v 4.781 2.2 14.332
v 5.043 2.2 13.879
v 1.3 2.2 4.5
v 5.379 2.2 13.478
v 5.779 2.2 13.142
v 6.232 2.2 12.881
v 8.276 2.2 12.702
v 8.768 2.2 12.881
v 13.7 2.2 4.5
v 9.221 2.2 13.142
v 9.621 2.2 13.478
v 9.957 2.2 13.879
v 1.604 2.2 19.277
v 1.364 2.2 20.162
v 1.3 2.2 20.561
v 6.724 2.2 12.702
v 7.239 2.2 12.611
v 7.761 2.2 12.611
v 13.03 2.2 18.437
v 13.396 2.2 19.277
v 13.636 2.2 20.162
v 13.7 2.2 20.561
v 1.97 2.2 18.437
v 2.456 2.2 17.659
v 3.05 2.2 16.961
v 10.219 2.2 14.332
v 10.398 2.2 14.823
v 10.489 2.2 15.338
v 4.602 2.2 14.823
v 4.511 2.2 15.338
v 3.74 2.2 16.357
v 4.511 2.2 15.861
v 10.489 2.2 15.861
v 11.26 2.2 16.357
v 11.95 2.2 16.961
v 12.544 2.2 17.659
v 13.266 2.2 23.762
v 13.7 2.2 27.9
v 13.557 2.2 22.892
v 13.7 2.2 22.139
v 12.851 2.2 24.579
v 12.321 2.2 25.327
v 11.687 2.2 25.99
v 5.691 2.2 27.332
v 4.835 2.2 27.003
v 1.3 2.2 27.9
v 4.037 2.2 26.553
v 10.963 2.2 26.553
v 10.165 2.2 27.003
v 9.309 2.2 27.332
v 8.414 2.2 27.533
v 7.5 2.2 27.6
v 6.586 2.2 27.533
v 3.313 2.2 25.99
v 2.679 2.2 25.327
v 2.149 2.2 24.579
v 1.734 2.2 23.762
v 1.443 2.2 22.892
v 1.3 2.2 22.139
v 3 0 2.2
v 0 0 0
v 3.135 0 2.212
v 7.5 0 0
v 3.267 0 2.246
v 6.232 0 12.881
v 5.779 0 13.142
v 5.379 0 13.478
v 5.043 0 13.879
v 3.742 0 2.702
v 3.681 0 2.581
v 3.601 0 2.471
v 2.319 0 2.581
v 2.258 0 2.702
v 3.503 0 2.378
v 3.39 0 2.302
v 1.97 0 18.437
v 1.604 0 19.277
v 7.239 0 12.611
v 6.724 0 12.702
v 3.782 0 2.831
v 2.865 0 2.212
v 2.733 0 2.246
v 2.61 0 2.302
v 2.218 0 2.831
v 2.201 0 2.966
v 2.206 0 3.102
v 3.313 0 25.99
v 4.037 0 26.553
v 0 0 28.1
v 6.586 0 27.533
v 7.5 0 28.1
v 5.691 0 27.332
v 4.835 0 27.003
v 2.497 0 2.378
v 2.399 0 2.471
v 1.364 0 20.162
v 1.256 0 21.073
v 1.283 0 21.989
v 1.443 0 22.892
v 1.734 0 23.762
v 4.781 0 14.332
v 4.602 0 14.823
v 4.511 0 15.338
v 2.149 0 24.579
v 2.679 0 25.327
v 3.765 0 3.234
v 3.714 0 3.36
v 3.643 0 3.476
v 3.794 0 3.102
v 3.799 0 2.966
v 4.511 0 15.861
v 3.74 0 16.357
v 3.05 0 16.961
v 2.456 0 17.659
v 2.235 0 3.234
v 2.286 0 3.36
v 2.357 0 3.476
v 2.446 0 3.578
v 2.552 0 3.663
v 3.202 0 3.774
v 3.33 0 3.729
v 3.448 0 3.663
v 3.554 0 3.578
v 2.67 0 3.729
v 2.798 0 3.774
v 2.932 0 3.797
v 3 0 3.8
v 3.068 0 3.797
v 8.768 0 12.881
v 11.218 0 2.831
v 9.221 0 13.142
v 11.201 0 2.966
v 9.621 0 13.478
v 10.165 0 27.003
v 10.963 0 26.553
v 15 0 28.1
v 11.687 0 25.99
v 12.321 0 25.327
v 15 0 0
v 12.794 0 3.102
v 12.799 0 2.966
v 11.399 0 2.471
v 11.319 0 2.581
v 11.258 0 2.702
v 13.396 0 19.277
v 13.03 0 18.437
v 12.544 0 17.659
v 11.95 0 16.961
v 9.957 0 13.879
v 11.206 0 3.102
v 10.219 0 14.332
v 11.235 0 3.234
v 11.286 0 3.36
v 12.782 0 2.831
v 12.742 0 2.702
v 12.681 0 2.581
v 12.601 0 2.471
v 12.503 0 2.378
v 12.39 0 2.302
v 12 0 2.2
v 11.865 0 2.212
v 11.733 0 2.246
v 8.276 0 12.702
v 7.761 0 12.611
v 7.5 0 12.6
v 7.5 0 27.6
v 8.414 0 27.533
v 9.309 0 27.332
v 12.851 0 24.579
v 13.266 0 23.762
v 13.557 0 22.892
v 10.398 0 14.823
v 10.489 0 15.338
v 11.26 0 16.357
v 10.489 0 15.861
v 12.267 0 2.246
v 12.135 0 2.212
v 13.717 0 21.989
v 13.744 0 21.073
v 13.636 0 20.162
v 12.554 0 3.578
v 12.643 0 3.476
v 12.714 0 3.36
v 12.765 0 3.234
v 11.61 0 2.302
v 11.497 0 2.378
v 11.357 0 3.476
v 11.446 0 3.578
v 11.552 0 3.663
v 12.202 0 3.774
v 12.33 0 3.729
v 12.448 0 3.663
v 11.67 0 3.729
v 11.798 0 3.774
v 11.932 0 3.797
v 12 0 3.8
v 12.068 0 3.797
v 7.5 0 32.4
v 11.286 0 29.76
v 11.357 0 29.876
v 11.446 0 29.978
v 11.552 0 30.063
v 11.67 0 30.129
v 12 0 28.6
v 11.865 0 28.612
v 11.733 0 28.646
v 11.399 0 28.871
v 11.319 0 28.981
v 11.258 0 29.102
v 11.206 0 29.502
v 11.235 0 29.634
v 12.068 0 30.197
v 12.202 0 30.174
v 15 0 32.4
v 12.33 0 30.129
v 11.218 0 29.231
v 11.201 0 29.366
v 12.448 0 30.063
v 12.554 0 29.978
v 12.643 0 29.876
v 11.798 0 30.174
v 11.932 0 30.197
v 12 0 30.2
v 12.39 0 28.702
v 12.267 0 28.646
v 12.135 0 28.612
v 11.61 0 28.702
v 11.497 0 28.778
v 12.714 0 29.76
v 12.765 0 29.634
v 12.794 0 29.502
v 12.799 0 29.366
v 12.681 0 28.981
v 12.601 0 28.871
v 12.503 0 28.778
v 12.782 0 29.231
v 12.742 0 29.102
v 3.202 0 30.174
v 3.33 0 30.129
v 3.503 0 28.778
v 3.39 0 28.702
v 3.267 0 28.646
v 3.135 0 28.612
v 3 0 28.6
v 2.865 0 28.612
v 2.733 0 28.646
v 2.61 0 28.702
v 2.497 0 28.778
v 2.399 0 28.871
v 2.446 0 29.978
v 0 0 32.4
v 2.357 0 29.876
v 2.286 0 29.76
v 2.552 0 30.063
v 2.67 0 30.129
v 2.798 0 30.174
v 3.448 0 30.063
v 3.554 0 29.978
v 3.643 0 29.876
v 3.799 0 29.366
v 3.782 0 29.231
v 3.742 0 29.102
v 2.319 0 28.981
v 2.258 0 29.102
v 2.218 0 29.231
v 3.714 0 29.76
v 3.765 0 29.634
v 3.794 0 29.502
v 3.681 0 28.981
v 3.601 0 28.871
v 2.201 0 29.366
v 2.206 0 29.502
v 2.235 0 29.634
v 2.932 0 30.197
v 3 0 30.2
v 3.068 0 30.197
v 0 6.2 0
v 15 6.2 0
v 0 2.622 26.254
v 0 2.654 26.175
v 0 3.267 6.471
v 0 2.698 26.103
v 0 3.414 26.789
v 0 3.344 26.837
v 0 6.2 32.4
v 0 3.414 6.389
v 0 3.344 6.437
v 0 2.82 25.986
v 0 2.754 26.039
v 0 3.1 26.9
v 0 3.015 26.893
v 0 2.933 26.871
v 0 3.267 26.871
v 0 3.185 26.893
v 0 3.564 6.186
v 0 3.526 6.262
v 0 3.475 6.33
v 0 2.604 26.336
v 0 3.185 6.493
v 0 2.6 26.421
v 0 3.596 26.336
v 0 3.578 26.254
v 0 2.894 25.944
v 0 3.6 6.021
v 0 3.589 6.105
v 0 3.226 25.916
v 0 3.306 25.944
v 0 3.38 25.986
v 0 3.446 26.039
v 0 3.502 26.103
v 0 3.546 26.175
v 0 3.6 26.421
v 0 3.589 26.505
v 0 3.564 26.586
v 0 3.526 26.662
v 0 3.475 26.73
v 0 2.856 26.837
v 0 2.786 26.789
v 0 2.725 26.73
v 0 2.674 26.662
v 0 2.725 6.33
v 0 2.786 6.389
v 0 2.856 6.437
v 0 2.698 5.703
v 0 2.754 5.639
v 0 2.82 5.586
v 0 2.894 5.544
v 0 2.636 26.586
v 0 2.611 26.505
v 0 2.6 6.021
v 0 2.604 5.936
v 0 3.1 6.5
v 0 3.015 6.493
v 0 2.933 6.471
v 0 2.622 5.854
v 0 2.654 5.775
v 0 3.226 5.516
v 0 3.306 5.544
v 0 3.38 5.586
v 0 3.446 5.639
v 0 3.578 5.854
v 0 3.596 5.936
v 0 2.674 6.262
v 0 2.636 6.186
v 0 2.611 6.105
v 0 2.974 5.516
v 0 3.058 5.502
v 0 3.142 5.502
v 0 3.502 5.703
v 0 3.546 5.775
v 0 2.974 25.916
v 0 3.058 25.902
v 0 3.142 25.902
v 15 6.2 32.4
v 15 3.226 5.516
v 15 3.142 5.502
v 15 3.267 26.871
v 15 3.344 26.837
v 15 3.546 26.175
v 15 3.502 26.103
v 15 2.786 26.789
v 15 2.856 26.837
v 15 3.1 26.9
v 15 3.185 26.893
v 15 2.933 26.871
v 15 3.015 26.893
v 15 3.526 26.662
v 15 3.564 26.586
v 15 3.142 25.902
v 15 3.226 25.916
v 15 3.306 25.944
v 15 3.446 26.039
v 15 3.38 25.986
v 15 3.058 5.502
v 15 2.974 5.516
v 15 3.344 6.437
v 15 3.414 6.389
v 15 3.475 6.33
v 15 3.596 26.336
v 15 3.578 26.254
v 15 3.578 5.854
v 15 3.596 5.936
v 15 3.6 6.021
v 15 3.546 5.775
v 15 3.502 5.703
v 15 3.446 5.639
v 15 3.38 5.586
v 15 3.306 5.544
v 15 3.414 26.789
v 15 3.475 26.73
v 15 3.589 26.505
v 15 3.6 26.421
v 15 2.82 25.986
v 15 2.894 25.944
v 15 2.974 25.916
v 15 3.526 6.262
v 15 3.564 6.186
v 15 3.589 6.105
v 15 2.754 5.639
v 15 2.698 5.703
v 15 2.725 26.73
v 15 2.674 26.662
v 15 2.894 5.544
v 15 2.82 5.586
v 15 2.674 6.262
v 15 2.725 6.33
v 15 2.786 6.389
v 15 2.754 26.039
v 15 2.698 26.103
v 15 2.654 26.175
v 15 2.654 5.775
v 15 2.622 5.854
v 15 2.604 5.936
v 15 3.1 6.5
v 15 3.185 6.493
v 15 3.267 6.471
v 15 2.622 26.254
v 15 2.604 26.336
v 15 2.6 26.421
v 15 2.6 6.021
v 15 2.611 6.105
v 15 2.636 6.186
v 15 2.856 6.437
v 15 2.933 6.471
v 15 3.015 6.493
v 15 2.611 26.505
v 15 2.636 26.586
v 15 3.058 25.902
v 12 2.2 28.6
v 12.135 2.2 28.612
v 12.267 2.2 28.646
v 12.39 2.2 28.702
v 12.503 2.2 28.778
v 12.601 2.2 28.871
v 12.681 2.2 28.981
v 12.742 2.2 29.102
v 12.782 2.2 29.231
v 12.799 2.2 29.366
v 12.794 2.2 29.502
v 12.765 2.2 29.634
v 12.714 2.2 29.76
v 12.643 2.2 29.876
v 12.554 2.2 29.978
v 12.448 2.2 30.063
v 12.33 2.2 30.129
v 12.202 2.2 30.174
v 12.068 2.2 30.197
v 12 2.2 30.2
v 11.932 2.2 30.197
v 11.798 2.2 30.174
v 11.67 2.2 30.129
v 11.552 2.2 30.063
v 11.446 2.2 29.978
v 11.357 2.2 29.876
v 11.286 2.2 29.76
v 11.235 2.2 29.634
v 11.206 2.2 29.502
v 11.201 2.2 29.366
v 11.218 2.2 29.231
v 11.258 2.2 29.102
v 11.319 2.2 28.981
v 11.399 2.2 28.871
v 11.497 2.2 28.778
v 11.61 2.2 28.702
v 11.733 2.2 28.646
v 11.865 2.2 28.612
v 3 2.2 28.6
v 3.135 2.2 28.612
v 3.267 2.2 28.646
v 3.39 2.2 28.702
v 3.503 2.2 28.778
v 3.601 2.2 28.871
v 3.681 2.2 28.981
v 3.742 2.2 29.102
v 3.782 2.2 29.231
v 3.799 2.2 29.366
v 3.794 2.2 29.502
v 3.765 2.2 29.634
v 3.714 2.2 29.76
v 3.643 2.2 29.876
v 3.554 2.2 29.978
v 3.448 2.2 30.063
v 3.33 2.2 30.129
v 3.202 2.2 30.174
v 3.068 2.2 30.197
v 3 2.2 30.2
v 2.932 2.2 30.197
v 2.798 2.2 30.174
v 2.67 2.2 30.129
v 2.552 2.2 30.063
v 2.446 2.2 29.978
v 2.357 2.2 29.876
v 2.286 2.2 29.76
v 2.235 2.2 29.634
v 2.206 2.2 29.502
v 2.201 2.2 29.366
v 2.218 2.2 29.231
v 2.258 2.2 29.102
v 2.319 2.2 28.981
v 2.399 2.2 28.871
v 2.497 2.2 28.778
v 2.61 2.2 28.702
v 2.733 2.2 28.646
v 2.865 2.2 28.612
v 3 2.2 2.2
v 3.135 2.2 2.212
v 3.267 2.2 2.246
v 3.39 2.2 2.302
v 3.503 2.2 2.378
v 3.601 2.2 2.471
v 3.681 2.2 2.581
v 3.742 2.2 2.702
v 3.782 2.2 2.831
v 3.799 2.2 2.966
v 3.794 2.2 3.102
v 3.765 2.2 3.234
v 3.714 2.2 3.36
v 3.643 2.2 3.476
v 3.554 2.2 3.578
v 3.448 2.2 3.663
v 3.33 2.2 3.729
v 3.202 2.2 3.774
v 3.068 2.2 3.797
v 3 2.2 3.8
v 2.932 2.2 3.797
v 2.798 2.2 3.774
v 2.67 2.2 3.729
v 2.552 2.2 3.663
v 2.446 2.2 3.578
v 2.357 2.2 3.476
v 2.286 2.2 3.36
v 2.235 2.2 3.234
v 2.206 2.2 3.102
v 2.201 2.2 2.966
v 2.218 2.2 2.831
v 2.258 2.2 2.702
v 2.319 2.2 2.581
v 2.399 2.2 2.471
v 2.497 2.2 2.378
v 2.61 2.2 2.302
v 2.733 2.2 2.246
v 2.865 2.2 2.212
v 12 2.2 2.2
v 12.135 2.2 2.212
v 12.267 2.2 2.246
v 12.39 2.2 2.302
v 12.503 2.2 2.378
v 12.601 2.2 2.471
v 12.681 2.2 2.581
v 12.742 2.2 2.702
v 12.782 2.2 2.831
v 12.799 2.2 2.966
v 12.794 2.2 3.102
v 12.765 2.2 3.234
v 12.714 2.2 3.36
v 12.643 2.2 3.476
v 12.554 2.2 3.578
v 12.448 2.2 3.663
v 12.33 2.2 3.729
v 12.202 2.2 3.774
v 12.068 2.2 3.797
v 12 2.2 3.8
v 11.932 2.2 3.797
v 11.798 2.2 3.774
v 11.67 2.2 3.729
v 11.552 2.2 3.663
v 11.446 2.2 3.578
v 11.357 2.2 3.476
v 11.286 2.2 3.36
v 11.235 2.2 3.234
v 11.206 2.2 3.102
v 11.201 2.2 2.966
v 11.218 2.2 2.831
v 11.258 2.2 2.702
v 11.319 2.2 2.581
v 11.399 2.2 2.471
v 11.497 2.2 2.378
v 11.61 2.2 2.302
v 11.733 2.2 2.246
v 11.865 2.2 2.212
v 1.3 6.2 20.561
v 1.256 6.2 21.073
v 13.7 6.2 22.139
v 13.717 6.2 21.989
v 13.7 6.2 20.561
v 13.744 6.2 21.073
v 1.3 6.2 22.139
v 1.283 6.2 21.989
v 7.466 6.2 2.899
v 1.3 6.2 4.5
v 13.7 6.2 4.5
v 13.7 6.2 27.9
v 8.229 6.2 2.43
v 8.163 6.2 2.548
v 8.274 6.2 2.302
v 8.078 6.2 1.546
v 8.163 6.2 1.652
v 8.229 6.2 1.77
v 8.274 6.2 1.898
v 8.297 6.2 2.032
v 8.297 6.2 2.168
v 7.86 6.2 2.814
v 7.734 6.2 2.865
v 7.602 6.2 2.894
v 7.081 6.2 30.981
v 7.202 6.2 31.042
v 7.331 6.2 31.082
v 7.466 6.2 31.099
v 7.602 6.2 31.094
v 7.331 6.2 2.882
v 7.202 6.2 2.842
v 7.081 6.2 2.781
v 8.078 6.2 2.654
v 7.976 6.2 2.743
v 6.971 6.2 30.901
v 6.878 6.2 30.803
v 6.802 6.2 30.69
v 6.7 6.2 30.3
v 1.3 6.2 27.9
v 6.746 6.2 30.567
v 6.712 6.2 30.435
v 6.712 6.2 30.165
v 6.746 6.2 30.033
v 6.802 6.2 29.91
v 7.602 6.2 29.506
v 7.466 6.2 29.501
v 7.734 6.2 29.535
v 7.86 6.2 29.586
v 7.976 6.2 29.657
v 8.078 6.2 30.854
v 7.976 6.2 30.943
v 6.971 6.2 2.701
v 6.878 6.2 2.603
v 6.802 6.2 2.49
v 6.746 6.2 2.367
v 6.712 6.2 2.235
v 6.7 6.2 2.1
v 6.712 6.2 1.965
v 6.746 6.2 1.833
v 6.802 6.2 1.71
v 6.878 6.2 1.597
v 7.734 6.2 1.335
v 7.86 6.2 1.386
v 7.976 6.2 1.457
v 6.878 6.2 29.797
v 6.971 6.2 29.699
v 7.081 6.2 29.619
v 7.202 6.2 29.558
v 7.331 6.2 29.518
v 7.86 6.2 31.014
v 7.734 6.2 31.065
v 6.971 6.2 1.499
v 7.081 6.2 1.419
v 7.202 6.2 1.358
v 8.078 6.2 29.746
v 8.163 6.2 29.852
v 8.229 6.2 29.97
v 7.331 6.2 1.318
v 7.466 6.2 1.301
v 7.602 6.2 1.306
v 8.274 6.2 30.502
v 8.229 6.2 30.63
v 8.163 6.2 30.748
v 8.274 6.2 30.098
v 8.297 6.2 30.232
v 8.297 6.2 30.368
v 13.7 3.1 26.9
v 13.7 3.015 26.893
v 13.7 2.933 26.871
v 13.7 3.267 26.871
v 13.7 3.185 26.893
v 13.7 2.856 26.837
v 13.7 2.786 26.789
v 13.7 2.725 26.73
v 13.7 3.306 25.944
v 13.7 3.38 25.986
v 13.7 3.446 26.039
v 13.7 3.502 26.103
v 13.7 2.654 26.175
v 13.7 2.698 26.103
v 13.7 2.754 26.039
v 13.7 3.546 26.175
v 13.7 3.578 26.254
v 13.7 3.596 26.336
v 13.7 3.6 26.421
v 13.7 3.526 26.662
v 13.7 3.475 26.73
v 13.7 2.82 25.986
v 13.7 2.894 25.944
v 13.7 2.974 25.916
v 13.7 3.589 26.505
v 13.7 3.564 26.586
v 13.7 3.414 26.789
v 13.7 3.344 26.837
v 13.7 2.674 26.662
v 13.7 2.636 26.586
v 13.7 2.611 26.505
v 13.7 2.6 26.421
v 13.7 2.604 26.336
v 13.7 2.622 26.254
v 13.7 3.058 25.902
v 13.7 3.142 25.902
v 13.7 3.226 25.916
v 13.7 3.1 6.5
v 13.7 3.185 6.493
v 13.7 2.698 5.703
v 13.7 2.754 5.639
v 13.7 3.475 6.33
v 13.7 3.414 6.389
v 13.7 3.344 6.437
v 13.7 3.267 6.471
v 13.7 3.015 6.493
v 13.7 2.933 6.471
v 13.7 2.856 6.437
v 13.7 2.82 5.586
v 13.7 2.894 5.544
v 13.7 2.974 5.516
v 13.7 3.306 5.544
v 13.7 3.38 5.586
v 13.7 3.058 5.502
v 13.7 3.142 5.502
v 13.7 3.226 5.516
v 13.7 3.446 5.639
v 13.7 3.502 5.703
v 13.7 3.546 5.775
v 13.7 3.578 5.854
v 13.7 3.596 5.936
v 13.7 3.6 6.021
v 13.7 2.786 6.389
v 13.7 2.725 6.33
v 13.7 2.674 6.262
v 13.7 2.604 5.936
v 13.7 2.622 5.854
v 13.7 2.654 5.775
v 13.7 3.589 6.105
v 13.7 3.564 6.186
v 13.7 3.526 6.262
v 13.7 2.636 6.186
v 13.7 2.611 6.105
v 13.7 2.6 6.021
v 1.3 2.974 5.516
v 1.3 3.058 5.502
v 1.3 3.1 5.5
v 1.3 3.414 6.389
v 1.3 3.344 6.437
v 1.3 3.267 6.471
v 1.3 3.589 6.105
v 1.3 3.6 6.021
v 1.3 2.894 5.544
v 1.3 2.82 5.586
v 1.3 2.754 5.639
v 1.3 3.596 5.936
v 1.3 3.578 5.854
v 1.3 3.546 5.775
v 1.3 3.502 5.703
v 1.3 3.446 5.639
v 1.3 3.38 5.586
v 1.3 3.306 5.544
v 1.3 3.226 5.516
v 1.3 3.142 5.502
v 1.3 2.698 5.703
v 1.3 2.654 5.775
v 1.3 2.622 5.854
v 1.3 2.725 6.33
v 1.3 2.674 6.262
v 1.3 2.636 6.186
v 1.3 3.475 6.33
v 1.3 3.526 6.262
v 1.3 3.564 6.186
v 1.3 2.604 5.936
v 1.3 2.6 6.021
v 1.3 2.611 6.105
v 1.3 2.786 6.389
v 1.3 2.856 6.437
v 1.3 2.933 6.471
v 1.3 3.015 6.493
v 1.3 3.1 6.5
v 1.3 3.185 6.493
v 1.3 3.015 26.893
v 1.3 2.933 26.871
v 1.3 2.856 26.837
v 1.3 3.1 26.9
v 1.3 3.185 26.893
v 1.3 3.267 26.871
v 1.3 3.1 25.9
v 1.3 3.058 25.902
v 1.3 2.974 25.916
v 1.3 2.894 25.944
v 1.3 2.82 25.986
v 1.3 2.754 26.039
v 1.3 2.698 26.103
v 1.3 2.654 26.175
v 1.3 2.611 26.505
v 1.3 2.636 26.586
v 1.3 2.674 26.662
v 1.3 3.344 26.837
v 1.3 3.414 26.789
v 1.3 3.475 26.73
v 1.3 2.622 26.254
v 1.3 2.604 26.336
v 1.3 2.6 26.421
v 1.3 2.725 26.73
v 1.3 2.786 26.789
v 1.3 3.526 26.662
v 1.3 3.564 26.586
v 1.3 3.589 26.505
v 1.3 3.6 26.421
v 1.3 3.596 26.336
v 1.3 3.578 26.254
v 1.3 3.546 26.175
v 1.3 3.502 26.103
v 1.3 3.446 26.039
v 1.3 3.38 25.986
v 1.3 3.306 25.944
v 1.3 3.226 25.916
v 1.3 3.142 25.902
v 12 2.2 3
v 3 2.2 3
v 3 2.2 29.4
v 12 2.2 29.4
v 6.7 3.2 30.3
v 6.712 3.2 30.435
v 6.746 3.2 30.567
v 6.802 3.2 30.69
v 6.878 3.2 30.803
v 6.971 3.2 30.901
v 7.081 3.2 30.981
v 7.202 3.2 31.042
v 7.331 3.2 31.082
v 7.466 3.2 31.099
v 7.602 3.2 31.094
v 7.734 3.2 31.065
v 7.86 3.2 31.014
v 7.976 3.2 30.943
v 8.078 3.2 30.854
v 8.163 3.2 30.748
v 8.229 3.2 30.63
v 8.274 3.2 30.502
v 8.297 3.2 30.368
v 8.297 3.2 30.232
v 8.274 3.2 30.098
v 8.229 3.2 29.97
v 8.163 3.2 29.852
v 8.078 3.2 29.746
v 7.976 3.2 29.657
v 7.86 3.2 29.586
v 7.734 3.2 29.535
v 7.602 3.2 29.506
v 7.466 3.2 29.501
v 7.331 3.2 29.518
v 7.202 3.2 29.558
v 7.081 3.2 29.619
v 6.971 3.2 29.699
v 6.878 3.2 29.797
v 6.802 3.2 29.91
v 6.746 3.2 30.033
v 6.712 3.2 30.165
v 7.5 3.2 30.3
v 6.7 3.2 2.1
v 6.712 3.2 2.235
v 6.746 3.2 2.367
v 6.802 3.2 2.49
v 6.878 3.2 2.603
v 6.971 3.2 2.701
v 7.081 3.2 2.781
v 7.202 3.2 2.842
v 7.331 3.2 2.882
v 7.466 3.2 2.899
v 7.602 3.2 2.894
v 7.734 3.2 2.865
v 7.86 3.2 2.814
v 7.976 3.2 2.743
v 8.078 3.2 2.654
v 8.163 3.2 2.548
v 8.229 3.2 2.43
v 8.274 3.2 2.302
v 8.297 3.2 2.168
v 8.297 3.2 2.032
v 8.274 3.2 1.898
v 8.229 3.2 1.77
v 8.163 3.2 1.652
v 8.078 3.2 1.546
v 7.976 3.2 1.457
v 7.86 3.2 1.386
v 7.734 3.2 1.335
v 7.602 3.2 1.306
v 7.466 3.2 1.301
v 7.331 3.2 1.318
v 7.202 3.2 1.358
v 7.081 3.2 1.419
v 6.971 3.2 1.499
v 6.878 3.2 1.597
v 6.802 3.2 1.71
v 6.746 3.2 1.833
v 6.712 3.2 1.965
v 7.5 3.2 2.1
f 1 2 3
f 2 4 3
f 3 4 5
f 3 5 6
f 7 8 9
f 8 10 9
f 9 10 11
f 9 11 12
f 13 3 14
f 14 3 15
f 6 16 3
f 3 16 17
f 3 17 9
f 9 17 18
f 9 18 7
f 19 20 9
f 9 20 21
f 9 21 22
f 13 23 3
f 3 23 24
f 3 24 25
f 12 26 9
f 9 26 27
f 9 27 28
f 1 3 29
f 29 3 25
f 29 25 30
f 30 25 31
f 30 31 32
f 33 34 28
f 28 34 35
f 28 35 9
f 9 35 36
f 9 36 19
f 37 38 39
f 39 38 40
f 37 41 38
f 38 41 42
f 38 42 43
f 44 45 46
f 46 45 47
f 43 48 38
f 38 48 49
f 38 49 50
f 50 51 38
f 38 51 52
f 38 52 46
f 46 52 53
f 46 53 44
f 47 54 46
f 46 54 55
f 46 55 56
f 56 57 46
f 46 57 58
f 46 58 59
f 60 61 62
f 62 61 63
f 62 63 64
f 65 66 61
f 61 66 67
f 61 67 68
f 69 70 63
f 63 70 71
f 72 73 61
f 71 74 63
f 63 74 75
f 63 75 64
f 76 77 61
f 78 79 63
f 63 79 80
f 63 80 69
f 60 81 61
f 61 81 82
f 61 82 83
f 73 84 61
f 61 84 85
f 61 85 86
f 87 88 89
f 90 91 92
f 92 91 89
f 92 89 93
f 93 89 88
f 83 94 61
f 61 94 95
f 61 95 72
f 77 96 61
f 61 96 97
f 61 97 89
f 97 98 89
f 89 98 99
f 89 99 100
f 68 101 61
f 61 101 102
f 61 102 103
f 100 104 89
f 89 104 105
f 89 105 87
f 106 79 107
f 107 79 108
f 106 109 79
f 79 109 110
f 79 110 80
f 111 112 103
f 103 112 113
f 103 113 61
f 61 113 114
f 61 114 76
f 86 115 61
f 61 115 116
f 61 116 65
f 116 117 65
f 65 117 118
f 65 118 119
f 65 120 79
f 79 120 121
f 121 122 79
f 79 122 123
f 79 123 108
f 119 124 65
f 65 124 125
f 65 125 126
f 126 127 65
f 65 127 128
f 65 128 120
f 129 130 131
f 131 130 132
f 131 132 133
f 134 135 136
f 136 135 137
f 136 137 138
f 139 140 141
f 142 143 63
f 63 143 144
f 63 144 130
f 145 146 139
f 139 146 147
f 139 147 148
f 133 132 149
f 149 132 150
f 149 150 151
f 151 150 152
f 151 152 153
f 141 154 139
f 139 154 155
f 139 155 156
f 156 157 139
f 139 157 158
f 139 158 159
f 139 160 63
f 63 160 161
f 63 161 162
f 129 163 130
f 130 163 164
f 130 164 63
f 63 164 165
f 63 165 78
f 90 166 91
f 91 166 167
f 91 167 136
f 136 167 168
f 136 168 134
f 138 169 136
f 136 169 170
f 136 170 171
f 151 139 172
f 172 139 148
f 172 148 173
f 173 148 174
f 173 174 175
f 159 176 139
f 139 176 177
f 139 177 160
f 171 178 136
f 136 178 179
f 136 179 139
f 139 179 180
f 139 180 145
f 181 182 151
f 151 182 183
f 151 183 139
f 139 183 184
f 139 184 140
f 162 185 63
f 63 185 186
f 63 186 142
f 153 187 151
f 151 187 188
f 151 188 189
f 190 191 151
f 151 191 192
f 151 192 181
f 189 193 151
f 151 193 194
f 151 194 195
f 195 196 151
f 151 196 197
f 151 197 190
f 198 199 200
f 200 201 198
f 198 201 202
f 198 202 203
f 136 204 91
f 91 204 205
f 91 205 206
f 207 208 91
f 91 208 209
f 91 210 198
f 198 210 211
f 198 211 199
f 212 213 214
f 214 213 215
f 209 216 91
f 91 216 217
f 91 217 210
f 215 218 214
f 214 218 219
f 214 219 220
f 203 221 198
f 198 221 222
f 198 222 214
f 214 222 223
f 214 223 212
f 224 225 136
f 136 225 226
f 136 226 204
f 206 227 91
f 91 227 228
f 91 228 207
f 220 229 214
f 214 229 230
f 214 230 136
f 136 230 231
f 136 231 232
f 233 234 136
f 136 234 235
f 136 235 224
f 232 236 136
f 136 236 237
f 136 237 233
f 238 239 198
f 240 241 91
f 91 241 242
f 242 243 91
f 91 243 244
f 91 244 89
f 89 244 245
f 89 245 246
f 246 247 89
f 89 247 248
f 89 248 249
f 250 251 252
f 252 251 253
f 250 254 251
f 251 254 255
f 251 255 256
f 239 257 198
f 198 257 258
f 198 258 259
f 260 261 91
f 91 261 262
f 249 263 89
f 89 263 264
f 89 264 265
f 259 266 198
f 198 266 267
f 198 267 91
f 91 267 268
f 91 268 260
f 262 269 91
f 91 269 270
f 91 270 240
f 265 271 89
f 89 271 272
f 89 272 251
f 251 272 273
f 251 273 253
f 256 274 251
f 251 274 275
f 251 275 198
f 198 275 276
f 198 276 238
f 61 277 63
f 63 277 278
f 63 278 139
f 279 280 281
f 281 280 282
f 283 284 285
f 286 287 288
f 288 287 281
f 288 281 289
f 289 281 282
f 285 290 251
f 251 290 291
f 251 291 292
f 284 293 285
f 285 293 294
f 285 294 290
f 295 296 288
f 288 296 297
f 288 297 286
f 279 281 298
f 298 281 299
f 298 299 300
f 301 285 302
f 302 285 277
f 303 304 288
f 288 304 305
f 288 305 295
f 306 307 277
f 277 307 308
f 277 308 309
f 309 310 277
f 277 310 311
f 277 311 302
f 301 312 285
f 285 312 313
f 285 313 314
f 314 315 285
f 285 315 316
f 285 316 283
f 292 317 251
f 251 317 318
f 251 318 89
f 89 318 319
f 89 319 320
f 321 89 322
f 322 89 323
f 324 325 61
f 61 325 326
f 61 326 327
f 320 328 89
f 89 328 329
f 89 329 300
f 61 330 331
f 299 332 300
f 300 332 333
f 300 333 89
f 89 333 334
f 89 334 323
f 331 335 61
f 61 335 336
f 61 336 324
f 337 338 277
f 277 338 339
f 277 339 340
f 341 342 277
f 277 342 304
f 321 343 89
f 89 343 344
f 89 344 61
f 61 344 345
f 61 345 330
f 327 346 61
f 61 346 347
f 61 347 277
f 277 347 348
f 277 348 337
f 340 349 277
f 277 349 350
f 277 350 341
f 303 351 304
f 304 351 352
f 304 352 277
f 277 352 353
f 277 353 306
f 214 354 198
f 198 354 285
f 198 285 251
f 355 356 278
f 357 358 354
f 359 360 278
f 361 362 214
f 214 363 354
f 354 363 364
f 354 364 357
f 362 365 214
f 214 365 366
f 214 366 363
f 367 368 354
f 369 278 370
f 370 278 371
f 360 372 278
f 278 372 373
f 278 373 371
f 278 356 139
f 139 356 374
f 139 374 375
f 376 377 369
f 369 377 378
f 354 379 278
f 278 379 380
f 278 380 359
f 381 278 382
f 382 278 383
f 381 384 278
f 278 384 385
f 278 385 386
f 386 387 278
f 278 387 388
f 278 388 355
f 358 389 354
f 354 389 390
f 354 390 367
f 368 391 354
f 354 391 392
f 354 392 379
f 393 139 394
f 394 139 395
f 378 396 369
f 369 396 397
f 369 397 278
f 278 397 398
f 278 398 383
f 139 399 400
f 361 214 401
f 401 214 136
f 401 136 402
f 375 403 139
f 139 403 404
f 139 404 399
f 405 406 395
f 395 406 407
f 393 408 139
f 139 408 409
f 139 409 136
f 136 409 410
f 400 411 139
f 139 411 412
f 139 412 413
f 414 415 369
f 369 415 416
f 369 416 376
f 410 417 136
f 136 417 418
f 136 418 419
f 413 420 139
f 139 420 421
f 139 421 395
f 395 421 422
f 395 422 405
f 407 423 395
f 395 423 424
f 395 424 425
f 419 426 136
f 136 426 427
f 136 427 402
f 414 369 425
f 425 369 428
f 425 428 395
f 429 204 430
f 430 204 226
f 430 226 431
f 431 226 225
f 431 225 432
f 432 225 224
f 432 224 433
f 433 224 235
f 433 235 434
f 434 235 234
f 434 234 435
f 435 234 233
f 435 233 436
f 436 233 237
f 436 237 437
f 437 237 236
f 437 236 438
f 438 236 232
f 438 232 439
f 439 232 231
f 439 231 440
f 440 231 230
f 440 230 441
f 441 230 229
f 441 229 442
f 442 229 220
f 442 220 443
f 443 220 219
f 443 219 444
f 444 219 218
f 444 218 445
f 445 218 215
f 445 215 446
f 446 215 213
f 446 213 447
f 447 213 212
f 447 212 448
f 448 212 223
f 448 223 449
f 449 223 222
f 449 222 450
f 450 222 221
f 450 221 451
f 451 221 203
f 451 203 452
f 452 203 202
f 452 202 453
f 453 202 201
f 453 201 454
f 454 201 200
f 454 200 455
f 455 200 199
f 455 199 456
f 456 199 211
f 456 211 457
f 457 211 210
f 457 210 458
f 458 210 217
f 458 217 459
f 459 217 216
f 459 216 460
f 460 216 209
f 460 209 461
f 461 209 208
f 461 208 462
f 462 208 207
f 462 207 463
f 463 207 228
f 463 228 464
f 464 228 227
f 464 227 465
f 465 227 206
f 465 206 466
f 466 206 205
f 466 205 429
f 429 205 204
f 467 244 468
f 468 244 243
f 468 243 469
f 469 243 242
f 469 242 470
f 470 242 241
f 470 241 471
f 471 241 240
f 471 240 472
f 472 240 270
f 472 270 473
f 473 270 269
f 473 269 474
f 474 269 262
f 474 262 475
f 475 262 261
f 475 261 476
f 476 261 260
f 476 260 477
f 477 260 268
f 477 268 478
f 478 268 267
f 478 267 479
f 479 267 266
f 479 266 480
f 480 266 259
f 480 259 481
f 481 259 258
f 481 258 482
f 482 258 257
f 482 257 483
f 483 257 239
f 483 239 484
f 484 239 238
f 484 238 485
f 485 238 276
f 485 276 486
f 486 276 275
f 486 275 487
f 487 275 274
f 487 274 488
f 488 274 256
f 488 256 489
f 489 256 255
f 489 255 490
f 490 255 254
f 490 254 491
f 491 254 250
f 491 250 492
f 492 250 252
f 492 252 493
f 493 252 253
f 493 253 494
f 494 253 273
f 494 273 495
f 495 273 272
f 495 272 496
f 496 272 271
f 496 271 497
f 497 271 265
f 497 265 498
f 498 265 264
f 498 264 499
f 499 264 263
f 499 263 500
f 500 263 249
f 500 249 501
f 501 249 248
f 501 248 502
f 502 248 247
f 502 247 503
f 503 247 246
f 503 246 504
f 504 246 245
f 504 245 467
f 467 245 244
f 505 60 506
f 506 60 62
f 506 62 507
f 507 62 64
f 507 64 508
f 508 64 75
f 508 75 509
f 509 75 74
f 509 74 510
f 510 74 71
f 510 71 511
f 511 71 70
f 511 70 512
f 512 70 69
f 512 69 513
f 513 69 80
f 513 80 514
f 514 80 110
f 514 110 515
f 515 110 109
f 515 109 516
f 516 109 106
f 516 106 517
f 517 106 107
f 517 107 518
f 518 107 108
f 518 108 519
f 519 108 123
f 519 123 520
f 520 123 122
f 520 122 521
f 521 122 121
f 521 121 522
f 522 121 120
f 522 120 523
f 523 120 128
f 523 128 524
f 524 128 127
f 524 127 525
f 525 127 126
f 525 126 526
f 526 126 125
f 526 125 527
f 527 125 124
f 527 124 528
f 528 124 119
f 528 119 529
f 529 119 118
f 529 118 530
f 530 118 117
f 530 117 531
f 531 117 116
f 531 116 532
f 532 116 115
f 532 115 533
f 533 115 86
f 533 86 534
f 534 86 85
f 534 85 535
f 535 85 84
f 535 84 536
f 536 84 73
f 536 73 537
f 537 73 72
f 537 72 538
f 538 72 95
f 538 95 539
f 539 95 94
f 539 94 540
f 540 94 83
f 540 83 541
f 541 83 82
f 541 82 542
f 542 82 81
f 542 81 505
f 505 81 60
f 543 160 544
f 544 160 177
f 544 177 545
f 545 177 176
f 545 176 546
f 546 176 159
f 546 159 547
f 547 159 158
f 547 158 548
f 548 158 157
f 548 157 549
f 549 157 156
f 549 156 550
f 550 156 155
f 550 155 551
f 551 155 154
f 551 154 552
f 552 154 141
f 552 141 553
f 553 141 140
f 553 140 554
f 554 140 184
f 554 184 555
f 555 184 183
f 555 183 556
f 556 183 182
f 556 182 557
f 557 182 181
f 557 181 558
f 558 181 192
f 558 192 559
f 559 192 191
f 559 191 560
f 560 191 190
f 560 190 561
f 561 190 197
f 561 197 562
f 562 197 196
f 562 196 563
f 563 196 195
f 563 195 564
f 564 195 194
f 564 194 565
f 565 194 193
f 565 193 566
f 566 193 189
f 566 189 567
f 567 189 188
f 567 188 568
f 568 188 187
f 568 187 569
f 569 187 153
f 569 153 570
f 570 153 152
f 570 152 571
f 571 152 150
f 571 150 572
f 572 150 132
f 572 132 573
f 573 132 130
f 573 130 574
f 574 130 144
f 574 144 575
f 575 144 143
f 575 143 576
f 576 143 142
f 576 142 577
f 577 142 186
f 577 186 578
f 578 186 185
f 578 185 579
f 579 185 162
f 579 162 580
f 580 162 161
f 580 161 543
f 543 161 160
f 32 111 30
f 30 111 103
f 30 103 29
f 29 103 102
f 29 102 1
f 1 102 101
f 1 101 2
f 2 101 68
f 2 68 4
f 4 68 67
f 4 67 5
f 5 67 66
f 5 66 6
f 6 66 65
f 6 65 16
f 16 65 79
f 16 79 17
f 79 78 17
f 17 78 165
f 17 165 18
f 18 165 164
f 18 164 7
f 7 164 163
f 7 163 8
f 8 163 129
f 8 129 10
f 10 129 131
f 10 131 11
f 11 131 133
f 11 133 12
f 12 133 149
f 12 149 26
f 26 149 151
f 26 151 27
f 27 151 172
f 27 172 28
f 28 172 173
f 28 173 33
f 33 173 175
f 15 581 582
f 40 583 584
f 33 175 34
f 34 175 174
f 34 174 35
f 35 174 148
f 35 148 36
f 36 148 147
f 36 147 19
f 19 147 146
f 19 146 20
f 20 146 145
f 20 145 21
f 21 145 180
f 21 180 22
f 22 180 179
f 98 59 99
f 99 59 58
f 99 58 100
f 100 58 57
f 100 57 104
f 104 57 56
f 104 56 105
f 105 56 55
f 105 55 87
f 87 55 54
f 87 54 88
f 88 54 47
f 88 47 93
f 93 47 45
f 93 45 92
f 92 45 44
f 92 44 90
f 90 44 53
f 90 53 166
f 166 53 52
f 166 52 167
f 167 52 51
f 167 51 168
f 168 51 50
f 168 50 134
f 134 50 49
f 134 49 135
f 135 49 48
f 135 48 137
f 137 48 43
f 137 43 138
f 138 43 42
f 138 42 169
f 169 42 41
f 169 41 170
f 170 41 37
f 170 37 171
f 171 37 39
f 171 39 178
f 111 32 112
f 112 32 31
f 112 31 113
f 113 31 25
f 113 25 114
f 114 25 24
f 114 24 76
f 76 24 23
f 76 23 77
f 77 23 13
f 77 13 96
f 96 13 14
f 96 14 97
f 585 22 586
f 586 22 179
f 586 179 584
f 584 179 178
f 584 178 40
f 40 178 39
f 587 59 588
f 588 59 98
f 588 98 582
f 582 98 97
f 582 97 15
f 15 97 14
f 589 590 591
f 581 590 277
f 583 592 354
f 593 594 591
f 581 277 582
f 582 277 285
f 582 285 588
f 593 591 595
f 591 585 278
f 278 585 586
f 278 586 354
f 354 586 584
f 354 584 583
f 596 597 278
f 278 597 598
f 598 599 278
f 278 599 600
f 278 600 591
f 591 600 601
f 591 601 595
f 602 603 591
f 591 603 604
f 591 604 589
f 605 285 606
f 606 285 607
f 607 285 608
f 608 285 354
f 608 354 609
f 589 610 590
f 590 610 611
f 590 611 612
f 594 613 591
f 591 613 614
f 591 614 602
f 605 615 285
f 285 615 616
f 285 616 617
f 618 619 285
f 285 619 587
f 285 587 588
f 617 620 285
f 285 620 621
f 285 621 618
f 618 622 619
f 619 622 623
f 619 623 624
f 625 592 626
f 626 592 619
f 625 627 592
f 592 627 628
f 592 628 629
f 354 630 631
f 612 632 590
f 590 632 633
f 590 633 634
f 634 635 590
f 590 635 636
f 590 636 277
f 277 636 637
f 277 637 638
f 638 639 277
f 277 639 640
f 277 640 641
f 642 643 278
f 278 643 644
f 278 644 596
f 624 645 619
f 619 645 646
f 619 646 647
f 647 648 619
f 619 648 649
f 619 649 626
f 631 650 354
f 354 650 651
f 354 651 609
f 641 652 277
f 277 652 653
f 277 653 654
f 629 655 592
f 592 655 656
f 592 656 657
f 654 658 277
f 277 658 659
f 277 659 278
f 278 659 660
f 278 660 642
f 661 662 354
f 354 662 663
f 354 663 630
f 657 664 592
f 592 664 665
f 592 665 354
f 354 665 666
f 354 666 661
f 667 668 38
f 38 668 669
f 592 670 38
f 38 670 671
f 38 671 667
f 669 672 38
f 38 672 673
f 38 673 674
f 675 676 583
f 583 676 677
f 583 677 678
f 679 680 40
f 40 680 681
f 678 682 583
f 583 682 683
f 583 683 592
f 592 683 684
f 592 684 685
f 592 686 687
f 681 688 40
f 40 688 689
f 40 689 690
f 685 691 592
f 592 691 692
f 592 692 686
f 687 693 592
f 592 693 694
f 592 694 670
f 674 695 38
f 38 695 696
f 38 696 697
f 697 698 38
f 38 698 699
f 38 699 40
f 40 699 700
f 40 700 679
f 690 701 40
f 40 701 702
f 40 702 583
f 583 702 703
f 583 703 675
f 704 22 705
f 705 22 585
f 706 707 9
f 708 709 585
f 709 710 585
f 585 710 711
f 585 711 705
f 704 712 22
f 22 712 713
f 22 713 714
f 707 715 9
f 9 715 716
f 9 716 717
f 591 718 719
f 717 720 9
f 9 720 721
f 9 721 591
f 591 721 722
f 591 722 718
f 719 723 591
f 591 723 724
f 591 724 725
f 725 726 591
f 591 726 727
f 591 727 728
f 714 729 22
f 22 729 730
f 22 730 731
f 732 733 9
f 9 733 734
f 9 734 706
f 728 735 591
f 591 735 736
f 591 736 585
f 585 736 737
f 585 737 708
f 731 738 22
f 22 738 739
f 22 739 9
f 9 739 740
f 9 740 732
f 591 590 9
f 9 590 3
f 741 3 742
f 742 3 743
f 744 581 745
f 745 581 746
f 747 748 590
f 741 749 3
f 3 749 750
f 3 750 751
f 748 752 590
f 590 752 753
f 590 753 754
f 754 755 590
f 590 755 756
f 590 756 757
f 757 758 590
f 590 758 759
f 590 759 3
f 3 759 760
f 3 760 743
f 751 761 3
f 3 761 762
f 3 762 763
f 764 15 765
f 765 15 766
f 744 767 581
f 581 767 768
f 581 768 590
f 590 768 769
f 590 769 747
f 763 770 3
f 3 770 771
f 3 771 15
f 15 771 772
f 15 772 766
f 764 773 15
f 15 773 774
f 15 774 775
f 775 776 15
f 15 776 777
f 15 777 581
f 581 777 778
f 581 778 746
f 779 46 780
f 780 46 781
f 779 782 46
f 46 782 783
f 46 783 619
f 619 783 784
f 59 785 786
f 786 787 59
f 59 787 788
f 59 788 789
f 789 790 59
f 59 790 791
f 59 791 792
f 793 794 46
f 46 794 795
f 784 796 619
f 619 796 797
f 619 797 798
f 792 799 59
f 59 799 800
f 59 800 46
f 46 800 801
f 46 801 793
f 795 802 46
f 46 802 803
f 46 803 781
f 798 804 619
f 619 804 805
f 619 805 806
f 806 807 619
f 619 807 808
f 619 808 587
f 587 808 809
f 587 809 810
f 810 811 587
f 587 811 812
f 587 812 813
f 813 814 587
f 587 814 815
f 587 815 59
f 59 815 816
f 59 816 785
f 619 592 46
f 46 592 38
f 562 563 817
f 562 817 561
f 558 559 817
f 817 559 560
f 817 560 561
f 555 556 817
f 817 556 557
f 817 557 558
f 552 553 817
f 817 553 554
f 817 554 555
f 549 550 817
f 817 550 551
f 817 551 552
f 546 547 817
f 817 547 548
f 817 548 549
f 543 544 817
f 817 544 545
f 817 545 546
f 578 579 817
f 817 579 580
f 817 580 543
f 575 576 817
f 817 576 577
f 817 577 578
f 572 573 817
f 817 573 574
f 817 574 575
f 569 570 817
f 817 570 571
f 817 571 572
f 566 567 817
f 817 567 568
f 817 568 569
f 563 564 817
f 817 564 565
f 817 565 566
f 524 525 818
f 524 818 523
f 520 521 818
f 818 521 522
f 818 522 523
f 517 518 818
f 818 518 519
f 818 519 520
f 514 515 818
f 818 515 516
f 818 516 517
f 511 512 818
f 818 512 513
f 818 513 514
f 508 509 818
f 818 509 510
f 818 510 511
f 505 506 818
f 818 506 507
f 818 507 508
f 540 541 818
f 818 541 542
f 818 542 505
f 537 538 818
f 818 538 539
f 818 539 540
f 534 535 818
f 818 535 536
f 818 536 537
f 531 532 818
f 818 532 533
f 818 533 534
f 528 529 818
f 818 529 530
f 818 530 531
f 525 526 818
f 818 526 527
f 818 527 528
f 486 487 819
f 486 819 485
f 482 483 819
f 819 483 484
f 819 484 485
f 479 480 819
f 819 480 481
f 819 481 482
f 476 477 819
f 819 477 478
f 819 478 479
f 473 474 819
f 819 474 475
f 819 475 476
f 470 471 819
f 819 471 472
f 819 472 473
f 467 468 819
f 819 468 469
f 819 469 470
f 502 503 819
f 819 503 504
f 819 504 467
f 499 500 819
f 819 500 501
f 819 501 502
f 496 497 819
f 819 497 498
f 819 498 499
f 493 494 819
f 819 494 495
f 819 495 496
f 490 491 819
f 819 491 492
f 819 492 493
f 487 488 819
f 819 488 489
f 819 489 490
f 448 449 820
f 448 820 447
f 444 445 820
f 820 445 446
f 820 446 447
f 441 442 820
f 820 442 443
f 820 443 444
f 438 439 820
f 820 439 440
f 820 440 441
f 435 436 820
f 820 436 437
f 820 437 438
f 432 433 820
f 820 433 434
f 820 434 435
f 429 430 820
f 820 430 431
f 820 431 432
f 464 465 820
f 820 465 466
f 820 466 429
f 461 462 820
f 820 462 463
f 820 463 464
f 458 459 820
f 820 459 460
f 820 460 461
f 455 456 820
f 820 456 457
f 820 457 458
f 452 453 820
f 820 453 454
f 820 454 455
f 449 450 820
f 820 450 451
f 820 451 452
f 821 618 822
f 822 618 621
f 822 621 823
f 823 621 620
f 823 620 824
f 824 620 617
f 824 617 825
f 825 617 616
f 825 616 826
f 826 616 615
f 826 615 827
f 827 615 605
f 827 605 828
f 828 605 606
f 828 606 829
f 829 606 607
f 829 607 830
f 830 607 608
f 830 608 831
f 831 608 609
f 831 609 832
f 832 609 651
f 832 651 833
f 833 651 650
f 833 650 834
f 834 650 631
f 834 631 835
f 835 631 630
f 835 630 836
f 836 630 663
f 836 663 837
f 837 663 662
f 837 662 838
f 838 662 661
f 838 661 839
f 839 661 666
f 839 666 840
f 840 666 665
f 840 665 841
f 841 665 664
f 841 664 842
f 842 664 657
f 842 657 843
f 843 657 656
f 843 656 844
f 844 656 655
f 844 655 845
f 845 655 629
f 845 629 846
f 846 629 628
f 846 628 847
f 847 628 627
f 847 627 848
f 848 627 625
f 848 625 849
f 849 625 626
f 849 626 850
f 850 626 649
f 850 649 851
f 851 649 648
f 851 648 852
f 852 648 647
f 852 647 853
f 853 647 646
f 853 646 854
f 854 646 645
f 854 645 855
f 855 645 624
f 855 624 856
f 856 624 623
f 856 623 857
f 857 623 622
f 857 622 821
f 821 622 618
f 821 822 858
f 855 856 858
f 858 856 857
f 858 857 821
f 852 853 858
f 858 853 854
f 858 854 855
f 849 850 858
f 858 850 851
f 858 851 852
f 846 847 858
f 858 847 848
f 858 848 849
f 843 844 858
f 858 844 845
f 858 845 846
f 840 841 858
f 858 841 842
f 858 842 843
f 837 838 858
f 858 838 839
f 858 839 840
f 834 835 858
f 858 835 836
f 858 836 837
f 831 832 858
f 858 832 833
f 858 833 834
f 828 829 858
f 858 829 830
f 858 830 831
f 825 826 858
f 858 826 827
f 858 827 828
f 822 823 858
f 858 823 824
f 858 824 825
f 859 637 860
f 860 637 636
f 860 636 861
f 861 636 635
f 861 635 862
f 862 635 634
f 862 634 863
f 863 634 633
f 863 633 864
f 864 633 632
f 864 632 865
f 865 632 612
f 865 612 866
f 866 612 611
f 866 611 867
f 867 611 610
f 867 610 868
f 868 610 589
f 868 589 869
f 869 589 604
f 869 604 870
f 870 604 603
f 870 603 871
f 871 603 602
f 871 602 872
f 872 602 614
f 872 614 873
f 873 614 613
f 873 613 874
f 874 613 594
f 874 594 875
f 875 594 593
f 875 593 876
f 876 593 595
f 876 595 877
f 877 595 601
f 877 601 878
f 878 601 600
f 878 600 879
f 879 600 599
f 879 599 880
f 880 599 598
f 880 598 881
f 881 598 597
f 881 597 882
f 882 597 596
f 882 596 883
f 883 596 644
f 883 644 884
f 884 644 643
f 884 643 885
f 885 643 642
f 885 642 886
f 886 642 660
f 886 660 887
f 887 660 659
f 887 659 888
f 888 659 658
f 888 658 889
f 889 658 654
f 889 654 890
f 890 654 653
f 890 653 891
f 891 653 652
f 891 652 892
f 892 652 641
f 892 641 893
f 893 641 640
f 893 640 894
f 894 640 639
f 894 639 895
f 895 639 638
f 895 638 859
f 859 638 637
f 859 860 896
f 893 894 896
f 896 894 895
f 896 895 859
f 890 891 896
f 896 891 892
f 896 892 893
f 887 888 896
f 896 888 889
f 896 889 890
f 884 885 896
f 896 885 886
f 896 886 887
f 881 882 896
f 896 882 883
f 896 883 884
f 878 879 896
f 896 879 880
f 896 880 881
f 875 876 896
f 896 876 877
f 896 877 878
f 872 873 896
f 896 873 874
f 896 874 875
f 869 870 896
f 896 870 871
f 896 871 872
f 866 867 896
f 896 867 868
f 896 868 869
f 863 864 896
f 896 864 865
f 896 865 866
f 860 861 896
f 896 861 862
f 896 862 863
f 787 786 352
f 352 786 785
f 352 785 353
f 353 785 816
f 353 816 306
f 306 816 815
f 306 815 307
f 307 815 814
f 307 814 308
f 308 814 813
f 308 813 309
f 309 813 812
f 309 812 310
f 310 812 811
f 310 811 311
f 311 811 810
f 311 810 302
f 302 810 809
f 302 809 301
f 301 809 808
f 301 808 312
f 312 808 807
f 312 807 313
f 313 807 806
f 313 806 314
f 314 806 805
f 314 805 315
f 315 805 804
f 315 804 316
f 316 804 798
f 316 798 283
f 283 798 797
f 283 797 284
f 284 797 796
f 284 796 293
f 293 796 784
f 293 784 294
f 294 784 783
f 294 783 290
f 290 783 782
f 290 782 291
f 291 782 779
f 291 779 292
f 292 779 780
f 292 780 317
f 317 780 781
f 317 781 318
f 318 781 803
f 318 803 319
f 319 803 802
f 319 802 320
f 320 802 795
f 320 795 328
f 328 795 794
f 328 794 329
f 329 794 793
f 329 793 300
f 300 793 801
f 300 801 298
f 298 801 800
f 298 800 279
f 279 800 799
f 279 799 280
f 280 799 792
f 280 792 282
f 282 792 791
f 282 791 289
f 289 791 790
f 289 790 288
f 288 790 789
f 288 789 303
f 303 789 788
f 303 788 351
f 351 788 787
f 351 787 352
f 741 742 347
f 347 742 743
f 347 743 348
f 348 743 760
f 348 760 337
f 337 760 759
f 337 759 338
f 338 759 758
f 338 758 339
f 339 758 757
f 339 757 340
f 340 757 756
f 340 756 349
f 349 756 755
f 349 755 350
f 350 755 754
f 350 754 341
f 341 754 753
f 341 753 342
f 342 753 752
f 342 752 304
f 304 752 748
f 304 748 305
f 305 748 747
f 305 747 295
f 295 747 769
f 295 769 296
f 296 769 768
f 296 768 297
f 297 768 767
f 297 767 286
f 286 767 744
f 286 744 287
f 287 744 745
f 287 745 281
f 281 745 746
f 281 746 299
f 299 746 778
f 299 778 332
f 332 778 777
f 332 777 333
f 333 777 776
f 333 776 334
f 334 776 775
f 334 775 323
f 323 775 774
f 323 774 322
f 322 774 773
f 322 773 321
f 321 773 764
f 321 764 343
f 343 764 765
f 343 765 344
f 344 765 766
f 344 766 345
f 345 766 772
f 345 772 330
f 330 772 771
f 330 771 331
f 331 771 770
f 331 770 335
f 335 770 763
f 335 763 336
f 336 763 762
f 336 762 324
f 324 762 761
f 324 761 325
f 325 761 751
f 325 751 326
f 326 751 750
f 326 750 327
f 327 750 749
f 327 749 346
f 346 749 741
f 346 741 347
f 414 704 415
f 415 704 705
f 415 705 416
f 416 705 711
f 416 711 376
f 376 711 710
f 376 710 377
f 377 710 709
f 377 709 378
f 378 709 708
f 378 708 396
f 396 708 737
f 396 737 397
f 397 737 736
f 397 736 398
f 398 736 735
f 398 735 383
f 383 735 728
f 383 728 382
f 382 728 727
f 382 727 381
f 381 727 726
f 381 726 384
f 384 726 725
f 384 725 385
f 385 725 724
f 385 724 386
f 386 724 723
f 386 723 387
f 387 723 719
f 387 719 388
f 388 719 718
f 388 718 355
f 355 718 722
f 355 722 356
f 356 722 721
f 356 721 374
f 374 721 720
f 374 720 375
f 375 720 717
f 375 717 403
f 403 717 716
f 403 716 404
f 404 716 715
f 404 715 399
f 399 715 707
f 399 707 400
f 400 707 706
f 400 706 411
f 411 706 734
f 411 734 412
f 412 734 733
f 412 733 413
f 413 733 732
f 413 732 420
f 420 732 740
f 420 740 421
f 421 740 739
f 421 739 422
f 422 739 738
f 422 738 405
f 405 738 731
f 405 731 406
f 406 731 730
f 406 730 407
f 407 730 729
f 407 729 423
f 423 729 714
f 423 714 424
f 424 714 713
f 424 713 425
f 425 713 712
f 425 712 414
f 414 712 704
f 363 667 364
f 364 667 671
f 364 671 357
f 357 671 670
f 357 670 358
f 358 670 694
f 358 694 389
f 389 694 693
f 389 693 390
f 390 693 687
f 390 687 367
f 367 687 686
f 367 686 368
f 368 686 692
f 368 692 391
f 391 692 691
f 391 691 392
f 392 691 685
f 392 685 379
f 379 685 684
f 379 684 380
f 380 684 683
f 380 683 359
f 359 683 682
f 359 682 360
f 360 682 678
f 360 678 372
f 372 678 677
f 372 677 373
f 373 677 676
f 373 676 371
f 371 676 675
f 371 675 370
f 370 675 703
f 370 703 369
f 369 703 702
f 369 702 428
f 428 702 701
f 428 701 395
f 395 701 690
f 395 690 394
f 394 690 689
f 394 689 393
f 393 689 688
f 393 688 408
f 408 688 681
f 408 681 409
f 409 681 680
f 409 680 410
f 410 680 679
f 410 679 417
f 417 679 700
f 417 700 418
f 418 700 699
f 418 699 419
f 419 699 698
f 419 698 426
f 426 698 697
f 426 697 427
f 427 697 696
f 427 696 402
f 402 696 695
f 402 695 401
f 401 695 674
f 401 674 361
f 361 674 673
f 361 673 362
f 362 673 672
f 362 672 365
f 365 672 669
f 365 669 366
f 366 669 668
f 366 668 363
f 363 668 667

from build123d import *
from build123d.topology import SkipClean

# Parameters (mm, degrees)
SKETCH_1_W          = 15
SKETCH_1_H          = 32.4
SKETCH_1_R          = 0.8
EXTRUDE_1_DEPTH     = 2.2
SKETCH_1_3_R        = 6.25
SKETCH_1_3_R_2      = 3
CUT_EXTRUDE_1_DEPTH = 36.771497033
SKETCH_2_W          = 15
SKETCH_2_H          = 32.4
EXTRUDE_2_DEPTH     = 4
SKETCH_3_R          = 0.8
CUT_EXTRUDE_2_DEPTH = 3
SKETCH_4_R          = 0.5
CUT_EXTRUDE_3_DEPTH = 37.238101496


with BuildPart() as part:
    # 草图1 → 凸台-拉伸1 (new body)
    with BuildSketch(Plane(origin=(0, 0, 0), x_dir=(1, 0, 0), z_dir=(0, 1, 0))):
        with Locations((7.5, -16.2)):
            Rectangle(SKETCH_1_W, SKETCH_1_H)
        with Locations((3, -3)):
            Circle(SKETCH_1_R, mode=Mode.SUBTRACT)
        with Locations((12, -3)):
            Circle(SKETCH_1_R, mode=Mode.SUBTRACT)
        with Locations((3, -29.4)):
            Circle(SKETCH_1_R, mode=Mode.SUBTRACT)
        with Locations((12, -29.4)):
            Circle(SKETCH_1_R, mode=Mode.SUBTRACT)
    extrude(amount=EXTRUDE_1_DEPTH)

    # 草图1<3> → 切除-拉伸1 (cut, through all)
    with BuildSketch(Plane(origin=(0, 0, 0), x_dir=(1, 0, 0), z_dir=(0, 1, 0))):
        with Locations((7.5, -21.35)):
            Circle(SKETCH_1_3_R)
        with Locations((7.5, -15.6)):
            Circle(SKETCH_1_3_R_2)
    extrude(amount=CUT_EXTRUDE_1_DEPTH, mode=Mode.SUBTRACT)

    # 草图2 → 凸台-拉伸2 (add)
    with SkipClean():  # the faces are left unmerged after this step: merging them gives an invalid solid
        with BuildSketch(Plane(origin=(0, 2.2, 0), x_dir=(1, 0, 0), z_dir=(0, 1, 0))):
            with Locations((7.5, -16.2)):
                Rectangle(SKETCH_2_W, SKETCH_2_H)
            with BuildLine():
                Line((13.7, -27.9), (1.3, -27.9))
                Line((1.3, -27.9), (1.3, -22.138986692))
                ThreePointArc((1.3, -22.138986692), (1.25, -21.35), (1.3, -20.561013308))
                Line((1.3, -20.561013308), (1.3, -4.5))
                Line((1.3, -4.5), (13.7, -4.5))
                Line((13.7, -4.5), (13.7, -20.561013308))
                ThreePointArc((13.7, -20.561013308), (13.75, -21.35), (13.7, -22.138986692))
                Line((13.7, -22.138986692), (13.7, -27.9))
            make_face(mode=Mode.SUBTRACT)
        extrude(amount=EXTRUDE_2_DEPTH)

    # 草图3 → 切除-拉伸2 (cut)
    with SkipClean():  # the faces are left unmerged after this step: merging them gives an invalid solid
        with BuildSketch(Plane(origin=(0, 6.2, 0), x_dir=(1, 0, 0), z_dir=(0, 1, 0))):
            with Locations((7.5, -30.3)):
                Circle(SKETCH_3_R)
            with Locations((7.5, -2.1)):
                Circle(SKETCH_3_R)
        extrude(amount=-CUT_EXTRUDE_2_DEPTH, mode=Mode.SUBTRACT)

    # 草图4 → 切除-拉伸3 (cut, through all)
    with SkipClean():  # the faces are left unmerged after this step: merging them gives an invalid solid
        with BuildSketch(Plane.ZY):
            with Locations((6, 3.1)):
                Circle(SKETCH_4_R)
            with Locations((26.4, 3.1)):
                Circle(SKETCH_4_R)
        extrude(amount=-CUT_EXTRUDE_3_DEPTH, mode=Mode.SUBTRACT)


solid = part.part
